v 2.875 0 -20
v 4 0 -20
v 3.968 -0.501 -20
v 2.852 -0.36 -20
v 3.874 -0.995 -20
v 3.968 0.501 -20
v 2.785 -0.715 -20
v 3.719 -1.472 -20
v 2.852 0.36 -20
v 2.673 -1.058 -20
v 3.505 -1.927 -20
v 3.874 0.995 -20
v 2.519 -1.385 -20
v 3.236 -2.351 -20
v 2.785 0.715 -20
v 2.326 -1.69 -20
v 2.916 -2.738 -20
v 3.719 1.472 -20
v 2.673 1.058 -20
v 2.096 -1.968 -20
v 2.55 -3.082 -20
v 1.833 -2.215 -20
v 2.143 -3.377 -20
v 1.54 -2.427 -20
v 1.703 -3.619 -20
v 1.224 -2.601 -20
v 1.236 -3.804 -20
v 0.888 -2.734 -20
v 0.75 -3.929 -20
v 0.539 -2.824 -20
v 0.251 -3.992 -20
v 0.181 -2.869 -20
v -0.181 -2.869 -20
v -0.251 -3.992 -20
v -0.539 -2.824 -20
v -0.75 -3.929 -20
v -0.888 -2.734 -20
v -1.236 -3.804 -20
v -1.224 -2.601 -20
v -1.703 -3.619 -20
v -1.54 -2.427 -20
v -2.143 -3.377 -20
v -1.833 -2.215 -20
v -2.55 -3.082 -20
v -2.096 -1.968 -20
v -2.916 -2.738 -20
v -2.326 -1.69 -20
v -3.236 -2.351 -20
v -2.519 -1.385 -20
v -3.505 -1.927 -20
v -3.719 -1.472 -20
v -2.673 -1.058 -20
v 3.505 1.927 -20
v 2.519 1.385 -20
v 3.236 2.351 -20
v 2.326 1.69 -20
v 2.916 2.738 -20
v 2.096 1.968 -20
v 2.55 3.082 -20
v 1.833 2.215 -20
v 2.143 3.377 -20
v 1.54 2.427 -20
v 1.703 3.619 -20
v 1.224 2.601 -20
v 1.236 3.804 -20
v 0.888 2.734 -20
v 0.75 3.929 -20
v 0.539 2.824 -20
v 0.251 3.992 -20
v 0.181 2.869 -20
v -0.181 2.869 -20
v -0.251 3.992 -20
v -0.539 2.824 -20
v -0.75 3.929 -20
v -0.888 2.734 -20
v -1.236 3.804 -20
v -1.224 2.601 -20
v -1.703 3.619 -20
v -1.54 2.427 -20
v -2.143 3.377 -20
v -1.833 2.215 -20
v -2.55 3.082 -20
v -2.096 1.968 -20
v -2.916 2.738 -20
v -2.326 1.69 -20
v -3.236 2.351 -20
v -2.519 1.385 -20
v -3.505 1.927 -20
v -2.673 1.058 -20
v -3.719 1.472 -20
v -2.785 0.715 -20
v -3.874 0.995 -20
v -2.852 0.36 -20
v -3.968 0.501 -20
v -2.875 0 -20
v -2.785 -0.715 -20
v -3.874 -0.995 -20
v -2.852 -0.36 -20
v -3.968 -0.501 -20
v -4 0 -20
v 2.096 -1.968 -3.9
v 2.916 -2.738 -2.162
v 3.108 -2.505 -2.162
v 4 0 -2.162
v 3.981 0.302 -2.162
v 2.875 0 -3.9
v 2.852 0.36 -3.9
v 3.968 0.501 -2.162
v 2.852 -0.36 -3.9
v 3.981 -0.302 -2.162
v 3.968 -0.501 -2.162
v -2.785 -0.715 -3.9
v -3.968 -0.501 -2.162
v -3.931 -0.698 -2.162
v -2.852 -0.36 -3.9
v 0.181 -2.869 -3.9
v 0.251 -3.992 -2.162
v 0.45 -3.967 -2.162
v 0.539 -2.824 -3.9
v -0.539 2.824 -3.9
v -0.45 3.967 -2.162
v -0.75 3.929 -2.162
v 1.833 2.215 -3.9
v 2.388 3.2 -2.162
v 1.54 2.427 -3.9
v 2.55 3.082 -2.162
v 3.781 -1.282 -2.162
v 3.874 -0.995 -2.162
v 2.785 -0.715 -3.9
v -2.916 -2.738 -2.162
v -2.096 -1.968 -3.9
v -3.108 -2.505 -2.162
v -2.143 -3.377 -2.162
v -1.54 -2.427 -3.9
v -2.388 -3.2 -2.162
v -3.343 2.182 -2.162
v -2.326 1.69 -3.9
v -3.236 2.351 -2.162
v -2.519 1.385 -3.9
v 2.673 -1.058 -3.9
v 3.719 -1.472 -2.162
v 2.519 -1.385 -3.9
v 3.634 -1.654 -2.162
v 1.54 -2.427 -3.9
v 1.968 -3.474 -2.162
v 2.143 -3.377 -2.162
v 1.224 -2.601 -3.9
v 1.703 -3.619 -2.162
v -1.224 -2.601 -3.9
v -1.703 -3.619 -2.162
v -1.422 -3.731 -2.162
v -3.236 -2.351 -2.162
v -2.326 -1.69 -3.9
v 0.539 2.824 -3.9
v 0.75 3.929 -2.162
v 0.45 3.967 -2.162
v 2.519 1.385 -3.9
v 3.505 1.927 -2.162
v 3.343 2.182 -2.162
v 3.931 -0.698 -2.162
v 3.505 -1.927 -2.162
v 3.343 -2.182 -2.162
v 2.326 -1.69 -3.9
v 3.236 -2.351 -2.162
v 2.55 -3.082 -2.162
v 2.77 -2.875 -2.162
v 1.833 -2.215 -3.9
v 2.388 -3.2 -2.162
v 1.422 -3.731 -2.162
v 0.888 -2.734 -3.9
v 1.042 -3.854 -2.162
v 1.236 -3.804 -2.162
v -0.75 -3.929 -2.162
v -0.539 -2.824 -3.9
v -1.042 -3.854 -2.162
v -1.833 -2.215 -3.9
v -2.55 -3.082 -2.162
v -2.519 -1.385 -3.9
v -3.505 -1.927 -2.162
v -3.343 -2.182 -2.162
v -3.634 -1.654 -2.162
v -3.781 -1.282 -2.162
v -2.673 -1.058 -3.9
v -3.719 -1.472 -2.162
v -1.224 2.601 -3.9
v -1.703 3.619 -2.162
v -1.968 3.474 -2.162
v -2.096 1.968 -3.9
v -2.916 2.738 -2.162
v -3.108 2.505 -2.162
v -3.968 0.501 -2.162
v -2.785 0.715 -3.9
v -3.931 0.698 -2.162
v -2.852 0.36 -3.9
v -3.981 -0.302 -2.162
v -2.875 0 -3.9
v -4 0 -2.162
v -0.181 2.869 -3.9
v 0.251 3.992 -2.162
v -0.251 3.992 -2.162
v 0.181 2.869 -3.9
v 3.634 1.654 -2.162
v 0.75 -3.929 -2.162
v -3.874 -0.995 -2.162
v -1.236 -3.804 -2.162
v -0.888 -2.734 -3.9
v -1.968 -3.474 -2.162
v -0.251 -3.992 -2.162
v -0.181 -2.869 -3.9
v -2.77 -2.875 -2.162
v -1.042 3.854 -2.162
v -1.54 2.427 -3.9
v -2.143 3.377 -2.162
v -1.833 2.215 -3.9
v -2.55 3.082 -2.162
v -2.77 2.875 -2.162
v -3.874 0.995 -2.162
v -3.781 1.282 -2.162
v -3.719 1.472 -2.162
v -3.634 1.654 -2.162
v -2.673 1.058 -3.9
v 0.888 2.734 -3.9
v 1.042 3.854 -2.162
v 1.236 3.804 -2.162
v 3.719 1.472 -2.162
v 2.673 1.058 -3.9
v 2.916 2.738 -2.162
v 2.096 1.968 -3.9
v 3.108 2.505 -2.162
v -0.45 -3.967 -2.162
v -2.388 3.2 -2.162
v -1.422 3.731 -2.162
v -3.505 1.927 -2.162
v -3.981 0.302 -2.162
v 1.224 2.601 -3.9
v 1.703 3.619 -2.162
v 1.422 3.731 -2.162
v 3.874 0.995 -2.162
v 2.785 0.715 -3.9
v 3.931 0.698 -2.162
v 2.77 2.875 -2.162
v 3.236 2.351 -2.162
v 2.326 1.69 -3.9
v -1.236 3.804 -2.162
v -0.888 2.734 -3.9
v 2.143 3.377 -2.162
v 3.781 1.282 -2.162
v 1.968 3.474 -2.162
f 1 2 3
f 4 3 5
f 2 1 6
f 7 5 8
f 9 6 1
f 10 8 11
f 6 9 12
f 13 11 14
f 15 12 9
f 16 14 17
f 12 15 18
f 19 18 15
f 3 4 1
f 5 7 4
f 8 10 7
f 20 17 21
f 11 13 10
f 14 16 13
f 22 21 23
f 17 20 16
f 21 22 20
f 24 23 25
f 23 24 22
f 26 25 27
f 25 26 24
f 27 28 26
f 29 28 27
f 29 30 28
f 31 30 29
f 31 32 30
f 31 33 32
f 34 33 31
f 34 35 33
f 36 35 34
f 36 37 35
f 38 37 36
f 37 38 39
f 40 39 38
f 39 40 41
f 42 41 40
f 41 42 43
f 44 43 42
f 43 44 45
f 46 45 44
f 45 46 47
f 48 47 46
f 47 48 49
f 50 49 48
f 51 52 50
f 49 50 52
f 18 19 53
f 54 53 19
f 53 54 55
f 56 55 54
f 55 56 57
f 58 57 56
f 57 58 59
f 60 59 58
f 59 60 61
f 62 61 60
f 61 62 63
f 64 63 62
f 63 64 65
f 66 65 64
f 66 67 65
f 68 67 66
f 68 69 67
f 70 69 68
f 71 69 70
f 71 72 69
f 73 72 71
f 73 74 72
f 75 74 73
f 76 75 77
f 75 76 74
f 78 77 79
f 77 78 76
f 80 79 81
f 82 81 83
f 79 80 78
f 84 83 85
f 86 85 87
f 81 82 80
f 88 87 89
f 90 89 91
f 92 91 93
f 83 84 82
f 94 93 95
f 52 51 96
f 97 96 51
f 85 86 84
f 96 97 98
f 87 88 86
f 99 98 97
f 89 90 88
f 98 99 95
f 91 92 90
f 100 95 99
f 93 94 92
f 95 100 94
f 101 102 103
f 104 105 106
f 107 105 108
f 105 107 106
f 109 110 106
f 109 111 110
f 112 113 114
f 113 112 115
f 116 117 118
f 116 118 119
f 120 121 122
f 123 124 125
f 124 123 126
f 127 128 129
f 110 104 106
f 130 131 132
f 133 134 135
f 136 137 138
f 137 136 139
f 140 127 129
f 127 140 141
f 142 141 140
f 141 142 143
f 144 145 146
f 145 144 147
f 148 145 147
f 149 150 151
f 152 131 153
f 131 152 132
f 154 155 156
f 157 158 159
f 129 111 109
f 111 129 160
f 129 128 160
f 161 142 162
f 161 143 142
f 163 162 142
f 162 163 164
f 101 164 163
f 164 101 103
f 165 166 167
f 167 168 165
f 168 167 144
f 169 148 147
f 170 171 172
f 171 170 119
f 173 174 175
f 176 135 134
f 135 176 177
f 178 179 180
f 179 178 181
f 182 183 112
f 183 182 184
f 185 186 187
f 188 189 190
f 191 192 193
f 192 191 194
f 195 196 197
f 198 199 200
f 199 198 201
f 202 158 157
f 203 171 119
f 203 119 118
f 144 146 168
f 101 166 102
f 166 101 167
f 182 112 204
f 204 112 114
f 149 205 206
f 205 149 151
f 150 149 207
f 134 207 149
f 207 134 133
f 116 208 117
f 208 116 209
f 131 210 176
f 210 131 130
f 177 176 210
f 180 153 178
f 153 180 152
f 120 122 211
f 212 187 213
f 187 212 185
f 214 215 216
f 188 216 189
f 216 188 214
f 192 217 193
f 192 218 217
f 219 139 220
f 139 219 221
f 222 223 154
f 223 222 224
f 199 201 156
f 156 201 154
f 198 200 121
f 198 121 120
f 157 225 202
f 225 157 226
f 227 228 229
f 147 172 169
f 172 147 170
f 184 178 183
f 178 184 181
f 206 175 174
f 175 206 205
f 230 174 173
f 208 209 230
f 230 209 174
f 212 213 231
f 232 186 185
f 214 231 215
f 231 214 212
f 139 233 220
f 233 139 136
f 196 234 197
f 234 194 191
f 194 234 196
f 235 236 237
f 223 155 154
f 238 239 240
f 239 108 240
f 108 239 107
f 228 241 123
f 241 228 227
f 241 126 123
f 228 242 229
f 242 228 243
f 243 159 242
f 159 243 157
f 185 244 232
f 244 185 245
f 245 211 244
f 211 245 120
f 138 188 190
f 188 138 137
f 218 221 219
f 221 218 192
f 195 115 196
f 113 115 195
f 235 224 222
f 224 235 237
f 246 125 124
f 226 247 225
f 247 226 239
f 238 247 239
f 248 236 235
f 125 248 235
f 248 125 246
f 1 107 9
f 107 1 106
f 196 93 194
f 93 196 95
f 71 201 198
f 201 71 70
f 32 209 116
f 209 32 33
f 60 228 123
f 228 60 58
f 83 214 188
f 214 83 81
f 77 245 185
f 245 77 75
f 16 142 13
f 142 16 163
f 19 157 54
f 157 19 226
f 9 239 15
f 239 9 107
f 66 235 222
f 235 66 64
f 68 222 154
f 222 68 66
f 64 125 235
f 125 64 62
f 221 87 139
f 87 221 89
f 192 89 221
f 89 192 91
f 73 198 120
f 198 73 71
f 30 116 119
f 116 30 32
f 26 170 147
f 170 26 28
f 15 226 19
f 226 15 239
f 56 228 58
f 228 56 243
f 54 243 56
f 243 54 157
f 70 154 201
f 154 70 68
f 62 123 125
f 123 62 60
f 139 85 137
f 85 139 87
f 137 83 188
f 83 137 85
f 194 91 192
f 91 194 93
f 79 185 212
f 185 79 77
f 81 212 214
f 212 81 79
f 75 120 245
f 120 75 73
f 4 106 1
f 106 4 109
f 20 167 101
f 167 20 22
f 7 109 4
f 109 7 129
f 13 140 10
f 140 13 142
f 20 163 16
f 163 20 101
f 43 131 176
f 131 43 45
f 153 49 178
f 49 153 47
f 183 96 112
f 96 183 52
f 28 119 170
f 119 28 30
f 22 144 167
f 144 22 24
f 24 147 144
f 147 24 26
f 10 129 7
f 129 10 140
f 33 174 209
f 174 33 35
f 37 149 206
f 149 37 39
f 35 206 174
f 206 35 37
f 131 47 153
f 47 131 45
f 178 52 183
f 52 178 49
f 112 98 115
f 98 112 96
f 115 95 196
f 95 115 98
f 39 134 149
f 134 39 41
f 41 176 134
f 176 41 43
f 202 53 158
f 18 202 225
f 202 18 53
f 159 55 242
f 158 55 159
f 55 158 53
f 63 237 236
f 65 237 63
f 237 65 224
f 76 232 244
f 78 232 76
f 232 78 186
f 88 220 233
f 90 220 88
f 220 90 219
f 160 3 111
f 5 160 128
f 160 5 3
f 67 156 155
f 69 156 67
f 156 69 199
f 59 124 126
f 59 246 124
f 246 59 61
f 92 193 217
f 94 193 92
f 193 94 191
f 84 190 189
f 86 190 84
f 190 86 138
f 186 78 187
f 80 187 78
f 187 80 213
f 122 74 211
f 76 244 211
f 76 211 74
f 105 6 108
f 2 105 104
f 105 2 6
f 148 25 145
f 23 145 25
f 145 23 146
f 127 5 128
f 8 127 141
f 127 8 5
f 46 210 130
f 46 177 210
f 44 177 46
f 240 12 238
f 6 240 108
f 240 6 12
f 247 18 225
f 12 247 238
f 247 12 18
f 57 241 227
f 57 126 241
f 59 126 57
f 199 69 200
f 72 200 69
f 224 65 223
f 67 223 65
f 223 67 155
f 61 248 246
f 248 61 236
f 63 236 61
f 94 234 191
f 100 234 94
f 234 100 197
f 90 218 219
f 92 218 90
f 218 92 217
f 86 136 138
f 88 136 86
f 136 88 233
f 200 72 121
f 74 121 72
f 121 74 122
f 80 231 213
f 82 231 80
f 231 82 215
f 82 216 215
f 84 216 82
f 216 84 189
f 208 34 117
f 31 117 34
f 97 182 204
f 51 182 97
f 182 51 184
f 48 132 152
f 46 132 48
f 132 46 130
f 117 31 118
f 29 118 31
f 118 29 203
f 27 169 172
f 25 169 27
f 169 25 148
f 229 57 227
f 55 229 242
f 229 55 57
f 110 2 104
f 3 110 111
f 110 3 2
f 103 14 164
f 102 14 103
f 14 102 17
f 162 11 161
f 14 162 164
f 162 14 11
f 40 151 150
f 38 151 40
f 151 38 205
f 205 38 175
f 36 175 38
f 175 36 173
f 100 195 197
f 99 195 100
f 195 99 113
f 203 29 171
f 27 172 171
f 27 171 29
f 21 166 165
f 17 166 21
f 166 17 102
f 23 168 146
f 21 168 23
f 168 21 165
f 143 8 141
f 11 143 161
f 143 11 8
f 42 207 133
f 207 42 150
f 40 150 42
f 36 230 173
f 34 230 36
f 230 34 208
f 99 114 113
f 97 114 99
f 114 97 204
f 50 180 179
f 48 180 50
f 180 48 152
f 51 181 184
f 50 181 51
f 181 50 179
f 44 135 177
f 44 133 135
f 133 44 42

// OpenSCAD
$fn = 50;


difference() {
	union() {
		translate(v = [0, 0, -20.0000000000]) {
			cylinder(h = 20, r = 4.0000000000);
		}
		cylinder(h = 0, r = 7.0000000000);
	}
	union() {
		translate(v = [0, 0, 0]) {
			rotate(a = [0, 0, 0]) {
				difference() {
					union() {
						#translate(v = [0, 0, -20.0000000000]) {
							cylinder(h = 20, r = 2.6000000000);
						}
						#translate(v = [0, 0, -3.9000000000]) {
							cylinder(h = 3.9000000000, r1 = 2.8750000000, r2 = 5.4000000000);
						}
						#translate(v = [0, 0, -20.0000000000]) {
							cylinder(h = 20, r = 2.8750000000);
						}
						#translate(v = [0, 0, -20.0000000000]) {
							cylinder(h = 20, r = 2.6000000000);
						}
					}
					union();
				}
			}
		}
	}
}
